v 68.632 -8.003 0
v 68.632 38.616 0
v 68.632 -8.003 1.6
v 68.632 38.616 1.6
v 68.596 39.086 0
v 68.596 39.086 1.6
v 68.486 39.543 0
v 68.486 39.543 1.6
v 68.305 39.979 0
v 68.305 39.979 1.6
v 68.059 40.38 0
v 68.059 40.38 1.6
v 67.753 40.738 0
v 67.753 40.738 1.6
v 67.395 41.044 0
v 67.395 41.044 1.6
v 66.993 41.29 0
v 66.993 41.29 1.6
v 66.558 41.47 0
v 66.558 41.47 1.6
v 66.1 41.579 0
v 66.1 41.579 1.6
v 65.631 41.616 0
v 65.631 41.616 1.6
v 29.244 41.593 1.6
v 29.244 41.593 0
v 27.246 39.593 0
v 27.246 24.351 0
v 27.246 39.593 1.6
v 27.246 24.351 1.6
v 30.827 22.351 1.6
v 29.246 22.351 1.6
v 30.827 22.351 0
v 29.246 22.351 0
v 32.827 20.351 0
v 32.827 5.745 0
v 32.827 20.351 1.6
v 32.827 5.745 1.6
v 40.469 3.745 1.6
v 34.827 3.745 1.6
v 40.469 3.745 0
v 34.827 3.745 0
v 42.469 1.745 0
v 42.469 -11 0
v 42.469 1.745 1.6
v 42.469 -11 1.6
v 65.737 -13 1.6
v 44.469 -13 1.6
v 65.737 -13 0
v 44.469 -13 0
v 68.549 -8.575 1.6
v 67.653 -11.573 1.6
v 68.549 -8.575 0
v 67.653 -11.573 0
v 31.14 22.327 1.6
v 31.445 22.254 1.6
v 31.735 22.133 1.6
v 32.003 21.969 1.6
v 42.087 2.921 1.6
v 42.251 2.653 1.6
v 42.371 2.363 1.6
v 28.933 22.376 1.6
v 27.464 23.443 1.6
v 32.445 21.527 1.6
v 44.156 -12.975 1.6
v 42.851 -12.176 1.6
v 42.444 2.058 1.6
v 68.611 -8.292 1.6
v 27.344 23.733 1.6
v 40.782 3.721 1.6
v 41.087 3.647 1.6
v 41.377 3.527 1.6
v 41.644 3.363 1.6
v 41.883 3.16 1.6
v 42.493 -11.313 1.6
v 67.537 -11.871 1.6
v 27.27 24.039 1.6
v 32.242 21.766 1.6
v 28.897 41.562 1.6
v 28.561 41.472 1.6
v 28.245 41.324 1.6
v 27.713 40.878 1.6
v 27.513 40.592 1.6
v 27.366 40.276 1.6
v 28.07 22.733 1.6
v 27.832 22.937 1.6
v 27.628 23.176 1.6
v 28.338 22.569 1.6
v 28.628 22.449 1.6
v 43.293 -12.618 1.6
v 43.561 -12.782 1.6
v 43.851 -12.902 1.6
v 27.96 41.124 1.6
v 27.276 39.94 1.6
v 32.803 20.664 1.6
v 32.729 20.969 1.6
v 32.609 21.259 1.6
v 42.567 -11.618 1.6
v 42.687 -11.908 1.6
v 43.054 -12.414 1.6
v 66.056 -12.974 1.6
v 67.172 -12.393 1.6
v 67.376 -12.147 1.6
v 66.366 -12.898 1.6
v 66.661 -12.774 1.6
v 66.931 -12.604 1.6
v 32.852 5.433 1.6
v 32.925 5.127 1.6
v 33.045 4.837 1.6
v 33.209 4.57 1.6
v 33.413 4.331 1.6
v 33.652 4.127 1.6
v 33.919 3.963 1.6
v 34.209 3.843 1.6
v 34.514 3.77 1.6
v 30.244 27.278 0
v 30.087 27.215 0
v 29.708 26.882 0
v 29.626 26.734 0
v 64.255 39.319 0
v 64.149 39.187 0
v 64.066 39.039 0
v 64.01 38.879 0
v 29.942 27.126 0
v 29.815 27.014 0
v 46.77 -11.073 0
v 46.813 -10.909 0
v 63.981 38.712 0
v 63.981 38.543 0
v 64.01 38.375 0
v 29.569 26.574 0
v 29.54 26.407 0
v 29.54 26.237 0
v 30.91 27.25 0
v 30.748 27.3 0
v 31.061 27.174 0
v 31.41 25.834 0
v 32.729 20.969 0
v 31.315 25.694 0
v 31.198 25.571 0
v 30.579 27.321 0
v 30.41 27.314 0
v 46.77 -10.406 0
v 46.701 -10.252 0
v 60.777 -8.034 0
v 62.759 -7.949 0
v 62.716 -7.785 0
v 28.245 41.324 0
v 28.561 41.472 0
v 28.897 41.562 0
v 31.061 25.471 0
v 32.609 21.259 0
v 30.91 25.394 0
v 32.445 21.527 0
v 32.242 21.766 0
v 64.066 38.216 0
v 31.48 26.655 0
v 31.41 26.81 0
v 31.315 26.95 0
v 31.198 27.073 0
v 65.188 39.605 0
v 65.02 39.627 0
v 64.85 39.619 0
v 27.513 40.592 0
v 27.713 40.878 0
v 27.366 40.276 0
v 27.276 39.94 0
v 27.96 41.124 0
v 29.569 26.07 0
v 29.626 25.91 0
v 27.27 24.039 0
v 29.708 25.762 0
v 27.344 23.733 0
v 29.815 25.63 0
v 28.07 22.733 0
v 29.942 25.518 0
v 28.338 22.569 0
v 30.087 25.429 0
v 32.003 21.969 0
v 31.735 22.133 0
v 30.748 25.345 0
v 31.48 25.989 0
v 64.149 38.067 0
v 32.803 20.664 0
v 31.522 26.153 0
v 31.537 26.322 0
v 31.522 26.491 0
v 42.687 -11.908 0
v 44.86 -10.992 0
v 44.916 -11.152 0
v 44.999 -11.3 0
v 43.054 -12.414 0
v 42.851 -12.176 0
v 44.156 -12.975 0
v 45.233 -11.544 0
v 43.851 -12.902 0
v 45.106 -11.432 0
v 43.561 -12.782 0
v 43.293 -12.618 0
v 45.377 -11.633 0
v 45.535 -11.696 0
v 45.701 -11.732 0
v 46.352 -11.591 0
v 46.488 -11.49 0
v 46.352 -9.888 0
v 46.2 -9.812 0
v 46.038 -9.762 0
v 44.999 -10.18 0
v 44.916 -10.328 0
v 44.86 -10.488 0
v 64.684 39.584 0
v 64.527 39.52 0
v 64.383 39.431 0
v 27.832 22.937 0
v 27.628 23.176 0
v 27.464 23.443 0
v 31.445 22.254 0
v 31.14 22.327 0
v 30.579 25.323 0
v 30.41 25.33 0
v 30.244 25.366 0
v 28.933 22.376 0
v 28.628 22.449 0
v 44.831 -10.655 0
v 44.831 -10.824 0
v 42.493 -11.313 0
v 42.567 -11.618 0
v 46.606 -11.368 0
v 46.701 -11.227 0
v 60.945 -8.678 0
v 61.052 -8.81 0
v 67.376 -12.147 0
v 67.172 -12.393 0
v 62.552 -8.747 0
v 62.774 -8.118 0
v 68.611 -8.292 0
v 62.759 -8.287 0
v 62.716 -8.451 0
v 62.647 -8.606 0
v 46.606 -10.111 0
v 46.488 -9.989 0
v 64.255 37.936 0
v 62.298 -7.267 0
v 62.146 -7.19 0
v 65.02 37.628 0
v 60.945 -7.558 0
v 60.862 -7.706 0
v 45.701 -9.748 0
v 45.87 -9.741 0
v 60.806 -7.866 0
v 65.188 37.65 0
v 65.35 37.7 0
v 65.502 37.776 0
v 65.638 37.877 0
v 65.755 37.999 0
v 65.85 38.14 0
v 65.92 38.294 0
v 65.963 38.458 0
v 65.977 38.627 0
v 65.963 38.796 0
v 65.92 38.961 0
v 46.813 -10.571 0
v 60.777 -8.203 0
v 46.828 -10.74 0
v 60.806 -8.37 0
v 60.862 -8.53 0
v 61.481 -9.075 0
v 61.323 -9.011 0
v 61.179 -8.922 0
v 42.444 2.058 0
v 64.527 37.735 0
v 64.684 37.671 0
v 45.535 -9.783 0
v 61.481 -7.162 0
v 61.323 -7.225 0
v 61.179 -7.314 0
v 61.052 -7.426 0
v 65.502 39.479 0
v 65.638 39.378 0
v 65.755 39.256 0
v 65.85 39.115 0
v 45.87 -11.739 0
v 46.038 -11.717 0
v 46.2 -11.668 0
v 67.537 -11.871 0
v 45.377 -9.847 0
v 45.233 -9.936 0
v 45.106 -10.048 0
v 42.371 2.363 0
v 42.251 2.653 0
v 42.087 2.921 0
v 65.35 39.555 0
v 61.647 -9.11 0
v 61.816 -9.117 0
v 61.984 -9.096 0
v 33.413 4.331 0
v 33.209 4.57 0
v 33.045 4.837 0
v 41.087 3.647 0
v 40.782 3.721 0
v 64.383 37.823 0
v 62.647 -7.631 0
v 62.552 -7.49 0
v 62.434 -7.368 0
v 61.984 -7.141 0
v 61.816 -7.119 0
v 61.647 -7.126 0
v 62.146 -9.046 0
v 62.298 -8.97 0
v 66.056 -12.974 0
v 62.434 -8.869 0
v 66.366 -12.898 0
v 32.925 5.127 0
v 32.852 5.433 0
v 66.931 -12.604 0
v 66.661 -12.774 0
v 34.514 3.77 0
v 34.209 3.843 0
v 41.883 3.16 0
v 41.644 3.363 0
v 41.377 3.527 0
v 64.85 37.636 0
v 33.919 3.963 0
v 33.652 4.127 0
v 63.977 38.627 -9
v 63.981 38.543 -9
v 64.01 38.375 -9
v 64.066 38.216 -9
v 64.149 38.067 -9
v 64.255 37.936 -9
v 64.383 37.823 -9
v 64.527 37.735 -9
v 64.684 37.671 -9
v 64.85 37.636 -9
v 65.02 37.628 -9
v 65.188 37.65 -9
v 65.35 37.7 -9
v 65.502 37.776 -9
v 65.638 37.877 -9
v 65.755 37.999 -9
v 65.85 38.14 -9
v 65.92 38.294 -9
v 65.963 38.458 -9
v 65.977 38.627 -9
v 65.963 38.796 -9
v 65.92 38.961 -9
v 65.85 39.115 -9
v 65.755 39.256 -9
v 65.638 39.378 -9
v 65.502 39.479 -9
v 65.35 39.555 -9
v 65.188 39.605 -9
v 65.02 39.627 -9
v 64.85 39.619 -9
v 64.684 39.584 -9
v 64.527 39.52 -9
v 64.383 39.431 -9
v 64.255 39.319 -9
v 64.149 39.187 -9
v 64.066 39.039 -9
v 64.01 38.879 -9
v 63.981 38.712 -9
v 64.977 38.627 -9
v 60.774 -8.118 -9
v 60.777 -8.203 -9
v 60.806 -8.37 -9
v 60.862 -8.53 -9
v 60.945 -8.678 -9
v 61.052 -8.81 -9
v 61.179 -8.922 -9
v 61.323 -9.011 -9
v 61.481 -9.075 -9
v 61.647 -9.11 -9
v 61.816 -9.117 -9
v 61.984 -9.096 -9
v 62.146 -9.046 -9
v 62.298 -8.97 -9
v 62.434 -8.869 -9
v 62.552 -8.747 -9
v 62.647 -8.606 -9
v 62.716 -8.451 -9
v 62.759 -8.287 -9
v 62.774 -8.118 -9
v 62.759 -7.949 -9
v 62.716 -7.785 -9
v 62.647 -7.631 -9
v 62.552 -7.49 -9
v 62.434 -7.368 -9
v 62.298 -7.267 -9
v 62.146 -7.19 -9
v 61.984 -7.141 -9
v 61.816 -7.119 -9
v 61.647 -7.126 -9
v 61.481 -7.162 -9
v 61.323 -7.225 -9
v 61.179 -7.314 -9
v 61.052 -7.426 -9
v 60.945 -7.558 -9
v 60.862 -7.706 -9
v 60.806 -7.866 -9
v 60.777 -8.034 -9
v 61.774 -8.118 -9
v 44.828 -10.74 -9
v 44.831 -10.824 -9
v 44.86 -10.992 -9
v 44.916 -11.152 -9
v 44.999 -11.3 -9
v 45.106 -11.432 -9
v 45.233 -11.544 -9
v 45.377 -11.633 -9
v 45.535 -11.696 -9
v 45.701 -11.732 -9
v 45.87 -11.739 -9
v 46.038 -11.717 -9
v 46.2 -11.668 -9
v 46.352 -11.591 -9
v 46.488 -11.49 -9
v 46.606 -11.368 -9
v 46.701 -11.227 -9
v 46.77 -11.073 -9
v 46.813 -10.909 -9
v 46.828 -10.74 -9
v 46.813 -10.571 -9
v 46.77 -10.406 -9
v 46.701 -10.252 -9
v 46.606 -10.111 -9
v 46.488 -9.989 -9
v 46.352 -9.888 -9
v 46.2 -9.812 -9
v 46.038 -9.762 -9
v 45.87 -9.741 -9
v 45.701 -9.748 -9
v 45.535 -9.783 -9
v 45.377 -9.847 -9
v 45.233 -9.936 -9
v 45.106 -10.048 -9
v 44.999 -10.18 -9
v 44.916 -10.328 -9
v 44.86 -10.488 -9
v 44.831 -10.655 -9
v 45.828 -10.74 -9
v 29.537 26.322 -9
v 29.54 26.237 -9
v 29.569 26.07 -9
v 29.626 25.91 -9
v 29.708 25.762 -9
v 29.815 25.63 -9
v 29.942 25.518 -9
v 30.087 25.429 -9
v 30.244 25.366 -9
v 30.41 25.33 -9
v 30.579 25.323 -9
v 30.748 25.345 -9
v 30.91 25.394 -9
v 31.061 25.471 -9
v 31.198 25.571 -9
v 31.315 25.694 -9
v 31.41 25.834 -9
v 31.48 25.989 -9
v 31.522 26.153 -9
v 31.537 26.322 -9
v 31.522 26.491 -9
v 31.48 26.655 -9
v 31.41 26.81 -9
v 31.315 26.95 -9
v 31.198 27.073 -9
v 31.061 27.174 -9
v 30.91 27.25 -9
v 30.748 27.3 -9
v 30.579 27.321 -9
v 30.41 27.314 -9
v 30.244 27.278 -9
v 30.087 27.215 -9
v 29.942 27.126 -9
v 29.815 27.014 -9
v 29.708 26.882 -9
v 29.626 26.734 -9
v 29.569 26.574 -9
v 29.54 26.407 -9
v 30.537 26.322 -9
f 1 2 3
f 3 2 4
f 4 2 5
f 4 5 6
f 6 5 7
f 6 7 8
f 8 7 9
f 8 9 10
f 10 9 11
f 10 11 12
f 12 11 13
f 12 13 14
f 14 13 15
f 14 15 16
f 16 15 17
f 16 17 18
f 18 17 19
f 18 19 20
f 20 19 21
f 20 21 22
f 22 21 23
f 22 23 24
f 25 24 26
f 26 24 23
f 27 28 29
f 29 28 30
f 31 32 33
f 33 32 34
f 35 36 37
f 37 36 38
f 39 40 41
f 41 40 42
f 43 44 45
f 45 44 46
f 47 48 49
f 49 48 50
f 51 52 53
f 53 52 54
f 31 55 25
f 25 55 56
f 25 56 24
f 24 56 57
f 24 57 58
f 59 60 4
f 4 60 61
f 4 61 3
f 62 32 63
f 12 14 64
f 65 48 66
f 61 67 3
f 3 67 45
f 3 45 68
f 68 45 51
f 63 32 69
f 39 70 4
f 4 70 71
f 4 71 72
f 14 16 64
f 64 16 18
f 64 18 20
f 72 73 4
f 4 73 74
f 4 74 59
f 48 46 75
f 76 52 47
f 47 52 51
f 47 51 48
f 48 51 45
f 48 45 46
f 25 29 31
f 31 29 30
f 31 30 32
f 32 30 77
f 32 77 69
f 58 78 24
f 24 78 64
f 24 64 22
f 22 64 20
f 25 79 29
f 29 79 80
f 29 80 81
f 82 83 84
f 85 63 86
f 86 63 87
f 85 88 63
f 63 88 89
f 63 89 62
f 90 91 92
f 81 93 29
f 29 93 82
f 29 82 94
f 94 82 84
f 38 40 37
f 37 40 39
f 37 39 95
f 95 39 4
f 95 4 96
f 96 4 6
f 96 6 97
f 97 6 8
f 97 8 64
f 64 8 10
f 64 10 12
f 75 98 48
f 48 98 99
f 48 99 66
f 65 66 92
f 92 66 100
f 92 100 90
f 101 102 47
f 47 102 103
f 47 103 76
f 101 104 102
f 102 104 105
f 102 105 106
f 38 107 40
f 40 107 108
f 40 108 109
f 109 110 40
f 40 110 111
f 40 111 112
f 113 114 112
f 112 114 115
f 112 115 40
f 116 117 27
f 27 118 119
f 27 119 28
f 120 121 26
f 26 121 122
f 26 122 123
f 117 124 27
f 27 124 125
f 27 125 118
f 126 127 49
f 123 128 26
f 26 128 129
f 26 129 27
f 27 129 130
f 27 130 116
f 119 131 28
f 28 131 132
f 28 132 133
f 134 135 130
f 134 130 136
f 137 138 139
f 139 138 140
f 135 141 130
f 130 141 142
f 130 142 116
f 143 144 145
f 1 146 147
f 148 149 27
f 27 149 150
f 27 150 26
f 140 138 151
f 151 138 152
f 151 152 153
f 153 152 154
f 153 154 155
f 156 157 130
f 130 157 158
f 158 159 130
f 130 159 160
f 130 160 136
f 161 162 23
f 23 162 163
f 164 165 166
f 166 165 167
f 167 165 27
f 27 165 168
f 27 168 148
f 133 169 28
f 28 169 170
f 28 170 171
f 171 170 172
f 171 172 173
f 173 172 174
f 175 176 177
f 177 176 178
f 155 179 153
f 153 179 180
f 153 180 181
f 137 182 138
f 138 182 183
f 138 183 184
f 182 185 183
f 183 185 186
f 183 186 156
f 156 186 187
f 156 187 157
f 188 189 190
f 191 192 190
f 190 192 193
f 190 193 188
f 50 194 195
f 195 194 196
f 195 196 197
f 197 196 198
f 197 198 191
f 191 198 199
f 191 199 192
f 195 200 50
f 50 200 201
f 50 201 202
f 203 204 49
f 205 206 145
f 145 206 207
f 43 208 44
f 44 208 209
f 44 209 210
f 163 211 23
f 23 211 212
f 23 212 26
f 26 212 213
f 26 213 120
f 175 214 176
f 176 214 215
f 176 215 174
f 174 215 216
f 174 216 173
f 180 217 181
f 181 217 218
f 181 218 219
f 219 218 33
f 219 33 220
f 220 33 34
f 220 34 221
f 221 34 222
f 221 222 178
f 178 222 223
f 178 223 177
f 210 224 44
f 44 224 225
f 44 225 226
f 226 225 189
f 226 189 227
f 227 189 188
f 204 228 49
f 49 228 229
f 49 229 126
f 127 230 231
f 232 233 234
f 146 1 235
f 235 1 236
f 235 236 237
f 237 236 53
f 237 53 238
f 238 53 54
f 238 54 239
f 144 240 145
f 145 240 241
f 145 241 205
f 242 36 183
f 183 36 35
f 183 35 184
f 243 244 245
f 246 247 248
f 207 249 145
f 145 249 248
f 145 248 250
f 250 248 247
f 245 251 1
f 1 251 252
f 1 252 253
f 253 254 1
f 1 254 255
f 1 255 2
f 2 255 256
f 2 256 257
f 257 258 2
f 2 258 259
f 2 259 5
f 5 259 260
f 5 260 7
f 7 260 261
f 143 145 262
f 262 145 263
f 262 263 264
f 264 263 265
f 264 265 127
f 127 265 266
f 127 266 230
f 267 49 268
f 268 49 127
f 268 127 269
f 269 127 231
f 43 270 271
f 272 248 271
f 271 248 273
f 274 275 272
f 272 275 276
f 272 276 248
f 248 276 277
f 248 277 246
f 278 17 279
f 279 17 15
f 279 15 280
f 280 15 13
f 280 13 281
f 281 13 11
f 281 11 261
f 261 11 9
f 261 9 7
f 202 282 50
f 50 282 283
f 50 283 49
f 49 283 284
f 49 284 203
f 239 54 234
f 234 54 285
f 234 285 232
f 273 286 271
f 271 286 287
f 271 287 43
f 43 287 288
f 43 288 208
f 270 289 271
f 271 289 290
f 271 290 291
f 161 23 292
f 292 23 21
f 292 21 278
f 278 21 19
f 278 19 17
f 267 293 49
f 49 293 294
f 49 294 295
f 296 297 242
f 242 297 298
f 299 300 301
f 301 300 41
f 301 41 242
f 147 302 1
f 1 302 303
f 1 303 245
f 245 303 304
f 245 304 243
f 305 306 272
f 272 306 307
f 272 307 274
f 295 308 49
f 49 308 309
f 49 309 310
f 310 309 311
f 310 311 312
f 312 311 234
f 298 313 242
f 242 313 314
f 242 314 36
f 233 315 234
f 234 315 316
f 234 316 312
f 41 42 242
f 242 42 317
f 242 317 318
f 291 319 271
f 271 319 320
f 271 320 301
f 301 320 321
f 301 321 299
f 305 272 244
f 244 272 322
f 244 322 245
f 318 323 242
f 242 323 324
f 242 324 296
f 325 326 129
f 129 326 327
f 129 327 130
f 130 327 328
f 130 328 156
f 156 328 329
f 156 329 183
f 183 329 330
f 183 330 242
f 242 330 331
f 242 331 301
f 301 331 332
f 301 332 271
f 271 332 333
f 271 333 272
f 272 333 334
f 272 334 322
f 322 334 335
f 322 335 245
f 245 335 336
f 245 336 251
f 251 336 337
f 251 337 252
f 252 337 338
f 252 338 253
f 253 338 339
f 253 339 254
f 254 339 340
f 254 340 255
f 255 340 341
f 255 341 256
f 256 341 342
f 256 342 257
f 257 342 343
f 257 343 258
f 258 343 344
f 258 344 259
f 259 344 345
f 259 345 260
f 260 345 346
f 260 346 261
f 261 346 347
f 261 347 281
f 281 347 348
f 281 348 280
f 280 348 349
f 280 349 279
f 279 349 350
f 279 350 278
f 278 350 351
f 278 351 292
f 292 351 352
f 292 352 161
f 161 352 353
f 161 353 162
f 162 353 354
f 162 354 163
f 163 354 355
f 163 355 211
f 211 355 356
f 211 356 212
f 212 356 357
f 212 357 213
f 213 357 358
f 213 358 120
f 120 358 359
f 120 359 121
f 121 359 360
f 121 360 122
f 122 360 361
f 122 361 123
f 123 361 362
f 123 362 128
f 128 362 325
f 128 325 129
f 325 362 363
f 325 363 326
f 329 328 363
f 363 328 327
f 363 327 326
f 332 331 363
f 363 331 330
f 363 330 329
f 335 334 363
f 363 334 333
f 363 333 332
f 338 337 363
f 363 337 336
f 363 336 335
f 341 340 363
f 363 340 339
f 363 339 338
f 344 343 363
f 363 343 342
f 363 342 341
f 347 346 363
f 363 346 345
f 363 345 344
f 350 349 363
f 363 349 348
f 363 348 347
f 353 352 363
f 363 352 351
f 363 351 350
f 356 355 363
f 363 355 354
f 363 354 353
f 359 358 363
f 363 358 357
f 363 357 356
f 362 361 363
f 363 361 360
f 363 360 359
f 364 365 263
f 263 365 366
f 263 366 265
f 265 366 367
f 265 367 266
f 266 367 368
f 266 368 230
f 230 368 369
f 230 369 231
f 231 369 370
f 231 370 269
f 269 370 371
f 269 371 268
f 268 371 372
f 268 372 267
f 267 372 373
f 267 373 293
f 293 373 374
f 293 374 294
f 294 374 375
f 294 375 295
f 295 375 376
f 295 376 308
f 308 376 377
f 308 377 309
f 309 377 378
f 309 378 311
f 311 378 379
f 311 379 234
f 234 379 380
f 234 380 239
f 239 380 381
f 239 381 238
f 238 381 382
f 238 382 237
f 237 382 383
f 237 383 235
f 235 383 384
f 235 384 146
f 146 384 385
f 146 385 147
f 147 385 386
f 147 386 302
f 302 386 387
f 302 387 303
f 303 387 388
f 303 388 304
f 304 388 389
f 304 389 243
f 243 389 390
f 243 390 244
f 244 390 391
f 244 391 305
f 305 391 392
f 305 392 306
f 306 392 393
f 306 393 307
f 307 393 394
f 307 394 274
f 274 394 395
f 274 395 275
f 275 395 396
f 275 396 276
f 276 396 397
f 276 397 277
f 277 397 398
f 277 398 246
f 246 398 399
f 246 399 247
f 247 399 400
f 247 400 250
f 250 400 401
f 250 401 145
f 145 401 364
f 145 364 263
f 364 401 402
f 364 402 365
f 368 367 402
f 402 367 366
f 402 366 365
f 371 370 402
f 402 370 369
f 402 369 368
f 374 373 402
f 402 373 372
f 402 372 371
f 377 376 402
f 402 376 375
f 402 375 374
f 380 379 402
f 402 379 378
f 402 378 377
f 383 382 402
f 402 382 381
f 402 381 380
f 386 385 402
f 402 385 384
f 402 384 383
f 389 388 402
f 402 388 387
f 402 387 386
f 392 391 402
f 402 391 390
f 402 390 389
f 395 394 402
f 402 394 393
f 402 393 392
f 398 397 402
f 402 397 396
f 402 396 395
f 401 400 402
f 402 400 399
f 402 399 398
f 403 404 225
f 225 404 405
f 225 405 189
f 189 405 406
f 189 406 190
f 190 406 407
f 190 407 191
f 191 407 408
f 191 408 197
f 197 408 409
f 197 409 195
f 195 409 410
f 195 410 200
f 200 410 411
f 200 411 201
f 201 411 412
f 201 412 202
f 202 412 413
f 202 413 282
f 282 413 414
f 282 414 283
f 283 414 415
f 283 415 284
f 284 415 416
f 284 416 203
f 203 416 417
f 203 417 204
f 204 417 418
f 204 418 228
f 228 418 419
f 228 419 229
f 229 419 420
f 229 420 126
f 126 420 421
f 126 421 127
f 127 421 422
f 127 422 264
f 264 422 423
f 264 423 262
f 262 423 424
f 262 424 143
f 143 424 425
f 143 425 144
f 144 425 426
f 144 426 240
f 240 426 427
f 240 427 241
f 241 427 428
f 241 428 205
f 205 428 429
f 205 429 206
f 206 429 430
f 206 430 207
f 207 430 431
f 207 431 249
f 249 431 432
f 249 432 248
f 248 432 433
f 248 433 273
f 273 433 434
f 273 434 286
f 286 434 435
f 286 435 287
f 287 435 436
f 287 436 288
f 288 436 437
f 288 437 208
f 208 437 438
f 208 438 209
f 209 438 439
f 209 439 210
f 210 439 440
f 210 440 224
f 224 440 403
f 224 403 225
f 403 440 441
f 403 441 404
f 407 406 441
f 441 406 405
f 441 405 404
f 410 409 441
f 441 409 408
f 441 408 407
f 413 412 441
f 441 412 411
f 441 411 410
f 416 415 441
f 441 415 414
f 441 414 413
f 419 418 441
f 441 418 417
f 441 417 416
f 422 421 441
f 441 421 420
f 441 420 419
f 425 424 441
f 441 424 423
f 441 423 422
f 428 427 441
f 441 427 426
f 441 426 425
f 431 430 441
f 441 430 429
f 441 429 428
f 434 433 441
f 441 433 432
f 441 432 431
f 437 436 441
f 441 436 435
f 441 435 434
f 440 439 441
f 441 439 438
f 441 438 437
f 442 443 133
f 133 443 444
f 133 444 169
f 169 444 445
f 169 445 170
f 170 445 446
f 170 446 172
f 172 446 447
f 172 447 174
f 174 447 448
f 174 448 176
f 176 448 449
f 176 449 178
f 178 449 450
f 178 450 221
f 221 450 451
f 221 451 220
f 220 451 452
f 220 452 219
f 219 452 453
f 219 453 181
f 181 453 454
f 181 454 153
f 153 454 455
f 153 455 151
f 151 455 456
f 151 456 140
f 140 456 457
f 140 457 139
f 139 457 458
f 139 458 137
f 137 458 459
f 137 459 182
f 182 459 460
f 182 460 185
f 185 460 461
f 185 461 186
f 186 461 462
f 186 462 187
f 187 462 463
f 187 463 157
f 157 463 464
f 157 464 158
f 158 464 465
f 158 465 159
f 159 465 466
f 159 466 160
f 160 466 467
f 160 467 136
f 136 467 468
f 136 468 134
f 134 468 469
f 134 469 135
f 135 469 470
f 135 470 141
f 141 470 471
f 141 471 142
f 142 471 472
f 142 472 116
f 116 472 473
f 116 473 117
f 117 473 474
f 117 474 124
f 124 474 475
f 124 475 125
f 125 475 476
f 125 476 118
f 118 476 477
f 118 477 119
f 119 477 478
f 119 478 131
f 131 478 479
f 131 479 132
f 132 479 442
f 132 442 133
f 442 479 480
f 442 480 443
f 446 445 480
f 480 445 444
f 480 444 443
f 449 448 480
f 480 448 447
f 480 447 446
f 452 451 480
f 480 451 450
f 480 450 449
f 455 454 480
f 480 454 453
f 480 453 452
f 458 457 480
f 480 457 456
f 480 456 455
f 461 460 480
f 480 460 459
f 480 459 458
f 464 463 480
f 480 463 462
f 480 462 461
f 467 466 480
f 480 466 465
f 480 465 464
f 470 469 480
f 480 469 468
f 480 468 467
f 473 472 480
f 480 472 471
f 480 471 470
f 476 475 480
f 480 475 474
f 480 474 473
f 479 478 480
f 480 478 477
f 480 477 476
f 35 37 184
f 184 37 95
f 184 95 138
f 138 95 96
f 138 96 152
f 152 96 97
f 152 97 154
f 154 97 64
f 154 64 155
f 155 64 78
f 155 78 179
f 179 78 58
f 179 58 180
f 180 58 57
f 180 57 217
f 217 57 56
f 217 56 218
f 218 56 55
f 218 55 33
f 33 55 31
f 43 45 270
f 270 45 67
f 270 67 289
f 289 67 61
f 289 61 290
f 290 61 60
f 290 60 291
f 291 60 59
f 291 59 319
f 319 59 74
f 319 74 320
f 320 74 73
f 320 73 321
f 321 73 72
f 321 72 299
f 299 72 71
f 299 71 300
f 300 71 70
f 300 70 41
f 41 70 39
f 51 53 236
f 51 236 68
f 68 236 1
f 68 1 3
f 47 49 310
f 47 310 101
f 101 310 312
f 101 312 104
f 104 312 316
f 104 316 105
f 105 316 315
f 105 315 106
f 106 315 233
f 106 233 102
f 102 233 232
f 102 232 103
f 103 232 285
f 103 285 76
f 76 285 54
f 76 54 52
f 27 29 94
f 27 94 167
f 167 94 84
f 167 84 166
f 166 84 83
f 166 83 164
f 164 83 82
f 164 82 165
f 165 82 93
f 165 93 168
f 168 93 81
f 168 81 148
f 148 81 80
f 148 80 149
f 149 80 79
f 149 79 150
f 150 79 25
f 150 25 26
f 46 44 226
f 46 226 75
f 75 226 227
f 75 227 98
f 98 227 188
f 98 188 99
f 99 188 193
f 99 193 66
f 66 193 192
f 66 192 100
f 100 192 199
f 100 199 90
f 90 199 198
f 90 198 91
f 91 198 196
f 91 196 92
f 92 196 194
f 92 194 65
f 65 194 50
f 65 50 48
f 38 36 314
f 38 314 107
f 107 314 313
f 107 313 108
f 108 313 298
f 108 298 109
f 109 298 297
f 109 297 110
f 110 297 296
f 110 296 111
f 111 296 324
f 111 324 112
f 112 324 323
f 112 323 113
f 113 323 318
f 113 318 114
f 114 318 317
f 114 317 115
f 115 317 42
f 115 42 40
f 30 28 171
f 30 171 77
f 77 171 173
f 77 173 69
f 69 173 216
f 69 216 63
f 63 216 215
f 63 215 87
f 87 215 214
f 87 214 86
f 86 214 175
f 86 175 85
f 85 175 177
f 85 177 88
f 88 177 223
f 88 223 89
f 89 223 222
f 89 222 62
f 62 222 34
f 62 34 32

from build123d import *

# Parameters (mm, degrees)
BOSS_EXTRUDE1_DEPTH = 1.6
SKETCH2_R           = 1
BOSS_EXTRUDE2_DEPTH = 9
FILLET1_R           = 2


with BuildPart() as part:
    # Sketch1 → Boss-Extrude1 (new body)
    with BuildSketch(Plane.XY):
        with BuildLine():
            Line((65.63056034, 41.616019999), (27.245760636, 41.591406461))
            Line((27.245760636, 41.591406461), (27.245760636, 22.351411618))
            Line((27.245760636, 22.351411618), (32.827326689, 22.351411618))
            Line((32.827326689, 22.351411618), (32.827326689, 3.745377262))
            Line((32.827326689, 3.745377262), (42.468635401, 3.745377262))
            Line((42.468635401, 3.745377262), (42.468635401, -13.000053658))
            Line((42.468635401, -13.000053658), (67.226484424, -13.000053658))
            Line((67.226484424, -13.000053658), (68.632483949, -8.295222112))
            Line((68.632483949, -8.295222112), (68.632483949, 38.616020588))
            ThreePointArc((68.632483949, 38.616020588), (67.753124087, 40.738020931), (65.63056034, 41.616019999))
        make_face()
    extrude(amount=BOSS_EXTRUDE1_DEPTH)

    # Sketch2 → Boss-Extrude2 (add)
    with BuildSketch(Plane(origin=(0, 0, 0), x_dir=(-1, 0, 0), z_dir=(0, 0, -1))):
        with Locations(Location((-30.536864632, 26.322094416, 0), (0, 0, 180))):
            Circle(SKETCH2_R)
        with Locations(Location((-45.827551279, -10.739617505, 0), (0, 0, 180))):
            Circle(SKETCH2_R)
        with Locations(Location((-61.773553069, -8.118356937, 0), (0, 0, 180))):
            Circle(SKETCH2_R)
        with Locations(Location((-64.977315986, 38.627456528, 0), (0, 0, 180))):
            Circle(SKETCH2_R)
    extrude(amount=BOSS_EXTRUDE2_DEPTH)

    # Fillet1
    fillet1_edges = [part.edges().sort_by_distance(p)[0] for p in [
        (68.632483949, -8.295222112, 0.8),
        (67.226484424, -13.000053658, 0.8),
        (42.468635401, -13.000053658, 0.8),
        (42.468635401, 3.745377262, 0.8),
        (32.827326689, 3.745377262, 0.8),
        (32.827326689, 22.351411618, 0.8),
        (27.245760636, 22.351411618, 0.8),
        (27.245760636, 41.591406461, 0.8),
    ]]
    fillet(fillet1_edges, radius=FILLET1_R)


solid = part.part
